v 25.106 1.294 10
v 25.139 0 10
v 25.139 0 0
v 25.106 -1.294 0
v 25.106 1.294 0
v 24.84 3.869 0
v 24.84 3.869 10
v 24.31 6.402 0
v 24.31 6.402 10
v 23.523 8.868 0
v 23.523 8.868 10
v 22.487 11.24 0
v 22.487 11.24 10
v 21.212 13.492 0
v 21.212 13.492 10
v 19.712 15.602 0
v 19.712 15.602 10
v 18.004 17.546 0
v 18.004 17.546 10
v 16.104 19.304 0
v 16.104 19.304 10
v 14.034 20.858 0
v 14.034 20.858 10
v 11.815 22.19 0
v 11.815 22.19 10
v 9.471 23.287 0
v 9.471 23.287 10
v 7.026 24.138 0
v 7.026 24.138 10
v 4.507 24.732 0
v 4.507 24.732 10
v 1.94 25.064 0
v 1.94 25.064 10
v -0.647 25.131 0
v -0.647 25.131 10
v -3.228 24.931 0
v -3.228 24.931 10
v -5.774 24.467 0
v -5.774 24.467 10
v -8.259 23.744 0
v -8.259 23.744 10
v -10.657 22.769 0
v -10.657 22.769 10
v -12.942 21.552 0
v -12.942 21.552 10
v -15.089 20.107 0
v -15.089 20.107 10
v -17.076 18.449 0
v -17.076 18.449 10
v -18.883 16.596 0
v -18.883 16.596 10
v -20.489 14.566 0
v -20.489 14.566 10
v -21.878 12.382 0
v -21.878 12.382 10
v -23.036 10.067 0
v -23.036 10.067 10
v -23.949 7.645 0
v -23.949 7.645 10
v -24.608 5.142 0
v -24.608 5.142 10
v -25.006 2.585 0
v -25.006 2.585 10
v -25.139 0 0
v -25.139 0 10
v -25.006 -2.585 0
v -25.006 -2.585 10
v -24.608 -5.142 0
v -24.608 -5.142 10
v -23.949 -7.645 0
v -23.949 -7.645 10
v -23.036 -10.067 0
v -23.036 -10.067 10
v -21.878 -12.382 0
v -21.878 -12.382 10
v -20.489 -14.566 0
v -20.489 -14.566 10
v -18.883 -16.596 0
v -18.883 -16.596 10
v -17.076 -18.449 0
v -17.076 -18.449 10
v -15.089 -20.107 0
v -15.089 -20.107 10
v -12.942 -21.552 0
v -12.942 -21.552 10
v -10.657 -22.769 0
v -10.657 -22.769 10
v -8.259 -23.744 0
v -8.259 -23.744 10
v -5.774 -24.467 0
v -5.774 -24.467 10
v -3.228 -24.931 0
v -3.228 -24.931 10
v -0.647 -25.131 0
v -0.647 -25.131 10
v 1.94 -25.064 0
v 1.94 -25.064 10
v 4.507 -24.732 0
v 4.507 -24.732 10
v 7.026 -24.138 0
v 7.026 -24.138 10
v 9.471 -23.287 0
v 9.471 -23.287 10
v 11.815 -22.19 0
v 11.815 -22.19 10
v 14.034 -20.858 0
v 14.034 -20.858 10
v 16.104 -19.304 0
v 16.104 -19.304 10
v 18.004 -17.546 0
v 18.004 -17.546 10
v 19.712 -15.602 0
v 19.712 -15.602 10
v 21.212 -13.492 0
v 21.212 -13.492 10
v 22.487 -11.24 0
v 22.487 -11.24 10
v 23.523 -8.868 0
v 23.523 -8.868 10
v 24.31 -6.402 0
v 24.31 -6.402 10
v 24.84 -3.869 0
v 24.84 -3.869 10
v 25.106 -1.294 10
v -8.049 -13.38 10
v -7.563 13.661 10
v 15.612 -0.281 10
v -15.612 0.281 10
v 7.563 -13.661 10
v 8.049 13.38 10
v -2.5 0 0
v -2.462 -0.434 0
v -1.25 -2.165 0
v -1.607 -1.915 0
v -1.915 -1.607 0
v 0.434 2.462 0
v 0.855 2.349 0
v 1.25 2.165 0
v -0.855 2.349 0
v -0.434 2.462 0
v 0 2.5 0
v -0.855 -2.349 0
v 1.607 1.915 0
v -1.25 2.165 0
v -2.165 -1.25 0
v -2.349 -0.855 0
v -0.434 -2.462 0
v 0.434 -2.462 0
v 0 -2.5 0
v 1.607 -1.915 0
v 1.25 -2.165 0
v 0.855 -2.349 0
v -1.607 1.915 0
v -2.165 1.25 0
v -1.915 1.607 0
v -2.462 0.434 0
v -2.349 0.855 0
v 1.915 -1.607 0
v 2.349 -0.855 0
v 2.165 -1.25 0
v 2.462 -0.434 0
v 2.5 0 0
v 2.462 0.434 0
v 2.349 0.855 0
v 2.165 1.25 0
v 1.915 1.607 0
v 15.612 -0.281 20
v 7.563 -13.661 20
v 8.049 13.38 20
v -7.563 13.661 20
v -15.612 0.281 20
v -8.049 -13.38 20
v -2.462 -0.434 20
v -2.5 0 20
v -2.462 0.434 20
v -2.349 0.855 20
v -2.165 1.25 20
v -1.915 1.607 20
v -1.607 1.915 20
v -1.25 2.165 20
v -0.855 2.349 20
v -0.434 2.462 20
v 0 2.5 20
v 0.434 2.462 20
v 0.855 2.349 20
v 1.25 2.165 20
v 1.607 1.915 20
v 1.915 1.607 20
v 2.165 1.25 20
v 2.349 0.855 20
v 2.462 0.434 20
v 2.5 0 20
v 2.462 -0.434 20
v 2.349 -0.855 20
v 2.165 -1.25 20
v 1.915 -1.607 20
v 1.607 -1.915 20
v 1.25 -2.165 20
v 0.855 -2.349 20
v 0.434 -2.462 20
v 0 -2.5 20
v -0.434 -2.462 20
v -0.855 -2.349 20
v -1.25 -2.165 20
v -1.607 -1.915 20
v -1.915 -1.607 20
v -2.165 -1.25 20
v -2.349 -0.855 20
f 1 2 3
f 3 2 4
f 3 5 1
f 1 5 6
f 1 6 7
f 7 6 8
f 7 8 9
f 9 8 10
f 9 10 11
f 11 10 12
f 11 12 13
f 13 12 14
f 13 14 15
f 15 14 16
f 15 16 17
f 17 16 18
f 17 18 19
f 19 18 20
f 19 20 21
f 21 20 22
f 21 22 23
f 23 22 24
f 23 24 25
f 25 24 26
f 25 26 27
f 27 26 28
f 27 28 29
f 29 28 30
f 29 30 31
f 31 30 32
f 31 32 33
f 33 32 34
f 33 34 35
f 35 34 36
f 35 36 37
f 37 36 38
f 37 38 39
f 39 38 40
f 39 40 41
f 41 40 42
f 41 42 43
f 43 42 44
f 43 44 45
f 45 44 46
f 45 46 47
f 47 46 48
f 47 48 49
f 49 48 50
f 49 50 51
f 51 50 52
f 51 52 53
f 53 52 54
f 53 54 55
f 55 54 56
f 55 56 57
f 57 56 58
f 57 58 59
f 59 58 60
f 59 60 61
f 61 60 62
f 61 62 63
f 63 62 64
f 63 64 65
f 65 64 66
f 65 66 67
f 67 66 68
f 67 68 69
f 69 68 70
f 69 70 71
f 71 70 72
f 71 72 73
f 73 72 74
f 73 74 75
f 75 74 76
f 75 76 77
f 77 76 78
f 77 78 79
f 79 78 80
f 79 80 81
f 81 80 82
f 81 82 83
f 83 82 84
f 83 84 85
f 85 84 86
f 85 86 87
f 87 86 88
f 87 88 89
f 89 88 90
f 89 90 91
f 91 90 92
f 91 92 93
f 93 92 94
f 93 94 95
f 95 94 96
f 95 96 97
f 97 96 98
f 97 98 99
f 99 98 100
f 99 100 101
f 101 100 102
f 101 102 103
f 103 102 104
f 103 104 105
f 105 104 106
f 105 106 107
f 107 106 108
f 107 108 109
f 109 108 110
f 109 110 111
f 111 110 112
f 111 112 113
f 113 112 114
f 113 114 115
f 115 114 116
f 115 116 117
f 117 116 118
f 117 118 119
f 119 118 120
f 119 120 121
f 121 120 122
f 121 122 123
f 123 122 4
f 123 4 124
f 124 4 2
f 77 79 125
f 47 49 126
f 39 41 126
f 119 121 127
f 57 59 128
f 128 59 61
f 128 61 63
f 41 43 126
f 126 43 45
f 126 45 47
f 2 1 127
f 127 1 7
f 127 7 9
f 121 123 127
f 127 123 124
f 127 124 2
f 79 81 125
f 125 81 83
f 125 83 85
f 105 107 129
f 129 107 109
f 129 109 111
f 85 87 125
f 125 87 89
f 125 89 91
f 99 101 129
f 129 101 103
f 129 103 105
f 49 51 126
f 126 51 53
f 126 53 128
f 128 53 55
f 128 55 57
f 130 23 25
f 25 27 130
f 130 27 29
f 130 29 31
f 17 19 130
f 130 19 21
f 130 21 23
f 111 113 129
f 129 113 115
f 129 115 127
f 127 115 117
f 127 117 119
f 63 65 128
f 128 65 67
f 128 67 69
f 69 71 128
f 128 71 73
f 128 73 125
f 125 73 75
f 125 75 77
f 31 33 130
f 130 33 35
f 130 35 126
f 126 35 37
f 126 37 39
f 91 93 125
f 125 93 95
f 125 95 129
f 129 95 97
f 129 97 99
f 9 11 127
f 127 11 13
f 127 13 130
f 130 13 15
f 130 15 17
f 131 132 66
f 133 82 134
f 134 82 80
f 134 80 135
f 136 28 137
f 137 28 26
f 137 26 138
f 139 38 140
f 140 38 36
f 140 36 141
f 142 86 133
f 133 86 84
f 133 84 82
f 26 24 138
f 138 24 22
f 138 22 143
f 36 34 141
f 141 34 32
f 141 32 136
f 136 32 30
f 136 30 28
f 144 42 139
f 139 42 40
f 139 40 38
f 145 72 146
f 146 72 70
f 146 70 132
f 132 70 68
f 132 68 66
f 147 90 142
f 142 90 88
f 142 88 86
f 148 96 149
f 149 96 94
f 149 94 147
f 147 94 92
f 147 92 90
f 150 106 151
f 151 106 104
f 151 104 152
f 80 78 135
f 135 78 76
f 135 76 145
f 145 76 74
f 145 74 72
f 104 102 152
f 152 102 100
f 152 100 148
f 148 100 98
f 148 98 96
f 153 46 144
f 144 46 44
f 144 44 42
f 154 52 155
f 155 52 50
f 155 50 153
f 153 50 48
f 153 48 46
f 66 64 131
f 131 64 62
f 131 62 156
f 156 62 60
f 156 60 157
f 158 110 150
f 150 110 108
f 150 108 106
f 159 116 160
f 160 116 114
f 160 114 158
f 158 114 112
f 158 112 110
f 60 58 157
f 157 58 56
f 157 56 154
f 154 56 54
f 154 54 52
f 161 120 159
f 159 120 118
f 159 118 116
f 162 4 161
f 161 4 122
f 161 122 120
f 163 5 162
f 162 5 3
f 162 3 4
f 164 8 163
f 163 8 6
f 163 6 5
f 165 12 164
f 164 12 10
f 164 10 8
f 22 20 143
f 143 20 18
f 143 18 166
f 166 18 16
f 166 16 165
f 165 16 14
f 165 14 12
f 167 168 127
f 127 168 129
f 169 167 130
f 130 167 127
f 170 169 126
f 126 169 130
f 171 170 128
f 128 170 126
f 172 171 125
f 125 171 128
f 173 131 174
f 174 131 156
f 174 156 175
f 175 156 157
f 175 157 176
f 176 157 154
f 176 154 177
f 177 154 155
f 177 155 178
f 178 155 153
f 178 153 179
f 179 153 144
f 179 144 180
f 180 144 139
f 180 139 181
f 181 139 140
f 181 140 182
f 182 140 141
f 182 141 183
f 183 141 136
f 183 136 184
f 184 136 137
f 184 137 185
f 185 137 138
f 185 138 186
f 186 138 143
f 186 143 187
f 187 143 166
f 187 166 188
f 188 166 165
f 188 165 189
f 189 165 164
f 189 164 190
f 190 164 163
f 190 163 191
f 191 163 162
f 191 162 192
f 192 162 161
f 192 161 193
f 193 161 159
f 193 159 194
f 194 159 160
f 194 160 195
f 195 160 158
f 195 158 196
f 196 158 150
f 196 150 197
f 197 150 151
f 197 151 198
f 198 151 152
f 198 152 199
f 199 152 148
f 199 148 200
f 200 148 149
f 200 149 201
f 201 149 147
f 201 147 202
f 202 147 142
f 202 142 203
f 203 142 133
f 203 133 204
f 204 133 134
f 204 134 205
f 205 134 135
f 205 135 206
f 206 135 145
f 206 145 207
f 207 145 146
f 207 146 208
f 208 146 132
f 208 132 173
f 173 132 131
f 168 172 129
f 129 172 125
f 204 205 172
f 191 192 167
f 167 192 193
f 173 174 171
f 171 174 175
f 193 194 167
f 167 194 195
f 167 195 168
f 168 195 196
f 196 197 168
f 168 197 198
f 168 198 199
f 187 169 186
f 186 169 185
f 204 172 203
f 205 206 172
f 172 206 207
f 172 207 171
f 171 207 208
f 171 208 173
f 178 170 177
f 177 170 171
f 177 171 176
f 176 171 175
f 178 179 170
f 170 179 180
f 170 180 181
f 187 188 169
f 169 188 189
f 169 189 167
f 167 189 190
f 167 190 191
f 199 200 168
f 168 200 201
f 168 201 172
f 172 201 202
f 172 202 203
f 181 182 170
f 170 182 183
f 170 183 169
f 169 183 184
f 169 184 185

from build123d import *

# Parameters (mm, degrees)
SKETCH1_R           = 25.139311184
BOSS_EXTRUDE1_DEPTH = 10
SKETCH1_3_R         = 2.5
BOSS_EXTRUDE2_DEPTH = 20


with BuildPart() as part:
    # Sketch1 → Boss-Extrude1 (new body)
    with BuildSketch(Plane.XY):
        Circle(SKETCH1_R)
        Polygon((-7.563031623, 13.660780721), (8.049067329, 13.380167876), (15.612098952, -0.280612845), (7.563031623, -13.660780721), (-8.049067329, -13.380167876), (-15.612098952, 0.280612845), align=None, mode=Mode.SUBTRACT)
    extrude(amount=BOSS_EXTRUDE1_DEPTH)

    # Sketch1<3> → Boss-Extrude2 (add)
    with BuildSketch(Plane.XY):
        Polygon((15.612098952, -0.280612845), (8.049067329, 13.380167876), (-7.563031623, 13.660780721), (-15.612098952, 0.280612845), (-8.049067329, -13.380167876), (7.563031623, -13.660780721), align=None)
        Circle(SKETCH1_3_R, mode=Mode.SUBTRACT)
    extrude(amount=BOSS_EXTRUDE2_DEPTH)


solid = part.part
